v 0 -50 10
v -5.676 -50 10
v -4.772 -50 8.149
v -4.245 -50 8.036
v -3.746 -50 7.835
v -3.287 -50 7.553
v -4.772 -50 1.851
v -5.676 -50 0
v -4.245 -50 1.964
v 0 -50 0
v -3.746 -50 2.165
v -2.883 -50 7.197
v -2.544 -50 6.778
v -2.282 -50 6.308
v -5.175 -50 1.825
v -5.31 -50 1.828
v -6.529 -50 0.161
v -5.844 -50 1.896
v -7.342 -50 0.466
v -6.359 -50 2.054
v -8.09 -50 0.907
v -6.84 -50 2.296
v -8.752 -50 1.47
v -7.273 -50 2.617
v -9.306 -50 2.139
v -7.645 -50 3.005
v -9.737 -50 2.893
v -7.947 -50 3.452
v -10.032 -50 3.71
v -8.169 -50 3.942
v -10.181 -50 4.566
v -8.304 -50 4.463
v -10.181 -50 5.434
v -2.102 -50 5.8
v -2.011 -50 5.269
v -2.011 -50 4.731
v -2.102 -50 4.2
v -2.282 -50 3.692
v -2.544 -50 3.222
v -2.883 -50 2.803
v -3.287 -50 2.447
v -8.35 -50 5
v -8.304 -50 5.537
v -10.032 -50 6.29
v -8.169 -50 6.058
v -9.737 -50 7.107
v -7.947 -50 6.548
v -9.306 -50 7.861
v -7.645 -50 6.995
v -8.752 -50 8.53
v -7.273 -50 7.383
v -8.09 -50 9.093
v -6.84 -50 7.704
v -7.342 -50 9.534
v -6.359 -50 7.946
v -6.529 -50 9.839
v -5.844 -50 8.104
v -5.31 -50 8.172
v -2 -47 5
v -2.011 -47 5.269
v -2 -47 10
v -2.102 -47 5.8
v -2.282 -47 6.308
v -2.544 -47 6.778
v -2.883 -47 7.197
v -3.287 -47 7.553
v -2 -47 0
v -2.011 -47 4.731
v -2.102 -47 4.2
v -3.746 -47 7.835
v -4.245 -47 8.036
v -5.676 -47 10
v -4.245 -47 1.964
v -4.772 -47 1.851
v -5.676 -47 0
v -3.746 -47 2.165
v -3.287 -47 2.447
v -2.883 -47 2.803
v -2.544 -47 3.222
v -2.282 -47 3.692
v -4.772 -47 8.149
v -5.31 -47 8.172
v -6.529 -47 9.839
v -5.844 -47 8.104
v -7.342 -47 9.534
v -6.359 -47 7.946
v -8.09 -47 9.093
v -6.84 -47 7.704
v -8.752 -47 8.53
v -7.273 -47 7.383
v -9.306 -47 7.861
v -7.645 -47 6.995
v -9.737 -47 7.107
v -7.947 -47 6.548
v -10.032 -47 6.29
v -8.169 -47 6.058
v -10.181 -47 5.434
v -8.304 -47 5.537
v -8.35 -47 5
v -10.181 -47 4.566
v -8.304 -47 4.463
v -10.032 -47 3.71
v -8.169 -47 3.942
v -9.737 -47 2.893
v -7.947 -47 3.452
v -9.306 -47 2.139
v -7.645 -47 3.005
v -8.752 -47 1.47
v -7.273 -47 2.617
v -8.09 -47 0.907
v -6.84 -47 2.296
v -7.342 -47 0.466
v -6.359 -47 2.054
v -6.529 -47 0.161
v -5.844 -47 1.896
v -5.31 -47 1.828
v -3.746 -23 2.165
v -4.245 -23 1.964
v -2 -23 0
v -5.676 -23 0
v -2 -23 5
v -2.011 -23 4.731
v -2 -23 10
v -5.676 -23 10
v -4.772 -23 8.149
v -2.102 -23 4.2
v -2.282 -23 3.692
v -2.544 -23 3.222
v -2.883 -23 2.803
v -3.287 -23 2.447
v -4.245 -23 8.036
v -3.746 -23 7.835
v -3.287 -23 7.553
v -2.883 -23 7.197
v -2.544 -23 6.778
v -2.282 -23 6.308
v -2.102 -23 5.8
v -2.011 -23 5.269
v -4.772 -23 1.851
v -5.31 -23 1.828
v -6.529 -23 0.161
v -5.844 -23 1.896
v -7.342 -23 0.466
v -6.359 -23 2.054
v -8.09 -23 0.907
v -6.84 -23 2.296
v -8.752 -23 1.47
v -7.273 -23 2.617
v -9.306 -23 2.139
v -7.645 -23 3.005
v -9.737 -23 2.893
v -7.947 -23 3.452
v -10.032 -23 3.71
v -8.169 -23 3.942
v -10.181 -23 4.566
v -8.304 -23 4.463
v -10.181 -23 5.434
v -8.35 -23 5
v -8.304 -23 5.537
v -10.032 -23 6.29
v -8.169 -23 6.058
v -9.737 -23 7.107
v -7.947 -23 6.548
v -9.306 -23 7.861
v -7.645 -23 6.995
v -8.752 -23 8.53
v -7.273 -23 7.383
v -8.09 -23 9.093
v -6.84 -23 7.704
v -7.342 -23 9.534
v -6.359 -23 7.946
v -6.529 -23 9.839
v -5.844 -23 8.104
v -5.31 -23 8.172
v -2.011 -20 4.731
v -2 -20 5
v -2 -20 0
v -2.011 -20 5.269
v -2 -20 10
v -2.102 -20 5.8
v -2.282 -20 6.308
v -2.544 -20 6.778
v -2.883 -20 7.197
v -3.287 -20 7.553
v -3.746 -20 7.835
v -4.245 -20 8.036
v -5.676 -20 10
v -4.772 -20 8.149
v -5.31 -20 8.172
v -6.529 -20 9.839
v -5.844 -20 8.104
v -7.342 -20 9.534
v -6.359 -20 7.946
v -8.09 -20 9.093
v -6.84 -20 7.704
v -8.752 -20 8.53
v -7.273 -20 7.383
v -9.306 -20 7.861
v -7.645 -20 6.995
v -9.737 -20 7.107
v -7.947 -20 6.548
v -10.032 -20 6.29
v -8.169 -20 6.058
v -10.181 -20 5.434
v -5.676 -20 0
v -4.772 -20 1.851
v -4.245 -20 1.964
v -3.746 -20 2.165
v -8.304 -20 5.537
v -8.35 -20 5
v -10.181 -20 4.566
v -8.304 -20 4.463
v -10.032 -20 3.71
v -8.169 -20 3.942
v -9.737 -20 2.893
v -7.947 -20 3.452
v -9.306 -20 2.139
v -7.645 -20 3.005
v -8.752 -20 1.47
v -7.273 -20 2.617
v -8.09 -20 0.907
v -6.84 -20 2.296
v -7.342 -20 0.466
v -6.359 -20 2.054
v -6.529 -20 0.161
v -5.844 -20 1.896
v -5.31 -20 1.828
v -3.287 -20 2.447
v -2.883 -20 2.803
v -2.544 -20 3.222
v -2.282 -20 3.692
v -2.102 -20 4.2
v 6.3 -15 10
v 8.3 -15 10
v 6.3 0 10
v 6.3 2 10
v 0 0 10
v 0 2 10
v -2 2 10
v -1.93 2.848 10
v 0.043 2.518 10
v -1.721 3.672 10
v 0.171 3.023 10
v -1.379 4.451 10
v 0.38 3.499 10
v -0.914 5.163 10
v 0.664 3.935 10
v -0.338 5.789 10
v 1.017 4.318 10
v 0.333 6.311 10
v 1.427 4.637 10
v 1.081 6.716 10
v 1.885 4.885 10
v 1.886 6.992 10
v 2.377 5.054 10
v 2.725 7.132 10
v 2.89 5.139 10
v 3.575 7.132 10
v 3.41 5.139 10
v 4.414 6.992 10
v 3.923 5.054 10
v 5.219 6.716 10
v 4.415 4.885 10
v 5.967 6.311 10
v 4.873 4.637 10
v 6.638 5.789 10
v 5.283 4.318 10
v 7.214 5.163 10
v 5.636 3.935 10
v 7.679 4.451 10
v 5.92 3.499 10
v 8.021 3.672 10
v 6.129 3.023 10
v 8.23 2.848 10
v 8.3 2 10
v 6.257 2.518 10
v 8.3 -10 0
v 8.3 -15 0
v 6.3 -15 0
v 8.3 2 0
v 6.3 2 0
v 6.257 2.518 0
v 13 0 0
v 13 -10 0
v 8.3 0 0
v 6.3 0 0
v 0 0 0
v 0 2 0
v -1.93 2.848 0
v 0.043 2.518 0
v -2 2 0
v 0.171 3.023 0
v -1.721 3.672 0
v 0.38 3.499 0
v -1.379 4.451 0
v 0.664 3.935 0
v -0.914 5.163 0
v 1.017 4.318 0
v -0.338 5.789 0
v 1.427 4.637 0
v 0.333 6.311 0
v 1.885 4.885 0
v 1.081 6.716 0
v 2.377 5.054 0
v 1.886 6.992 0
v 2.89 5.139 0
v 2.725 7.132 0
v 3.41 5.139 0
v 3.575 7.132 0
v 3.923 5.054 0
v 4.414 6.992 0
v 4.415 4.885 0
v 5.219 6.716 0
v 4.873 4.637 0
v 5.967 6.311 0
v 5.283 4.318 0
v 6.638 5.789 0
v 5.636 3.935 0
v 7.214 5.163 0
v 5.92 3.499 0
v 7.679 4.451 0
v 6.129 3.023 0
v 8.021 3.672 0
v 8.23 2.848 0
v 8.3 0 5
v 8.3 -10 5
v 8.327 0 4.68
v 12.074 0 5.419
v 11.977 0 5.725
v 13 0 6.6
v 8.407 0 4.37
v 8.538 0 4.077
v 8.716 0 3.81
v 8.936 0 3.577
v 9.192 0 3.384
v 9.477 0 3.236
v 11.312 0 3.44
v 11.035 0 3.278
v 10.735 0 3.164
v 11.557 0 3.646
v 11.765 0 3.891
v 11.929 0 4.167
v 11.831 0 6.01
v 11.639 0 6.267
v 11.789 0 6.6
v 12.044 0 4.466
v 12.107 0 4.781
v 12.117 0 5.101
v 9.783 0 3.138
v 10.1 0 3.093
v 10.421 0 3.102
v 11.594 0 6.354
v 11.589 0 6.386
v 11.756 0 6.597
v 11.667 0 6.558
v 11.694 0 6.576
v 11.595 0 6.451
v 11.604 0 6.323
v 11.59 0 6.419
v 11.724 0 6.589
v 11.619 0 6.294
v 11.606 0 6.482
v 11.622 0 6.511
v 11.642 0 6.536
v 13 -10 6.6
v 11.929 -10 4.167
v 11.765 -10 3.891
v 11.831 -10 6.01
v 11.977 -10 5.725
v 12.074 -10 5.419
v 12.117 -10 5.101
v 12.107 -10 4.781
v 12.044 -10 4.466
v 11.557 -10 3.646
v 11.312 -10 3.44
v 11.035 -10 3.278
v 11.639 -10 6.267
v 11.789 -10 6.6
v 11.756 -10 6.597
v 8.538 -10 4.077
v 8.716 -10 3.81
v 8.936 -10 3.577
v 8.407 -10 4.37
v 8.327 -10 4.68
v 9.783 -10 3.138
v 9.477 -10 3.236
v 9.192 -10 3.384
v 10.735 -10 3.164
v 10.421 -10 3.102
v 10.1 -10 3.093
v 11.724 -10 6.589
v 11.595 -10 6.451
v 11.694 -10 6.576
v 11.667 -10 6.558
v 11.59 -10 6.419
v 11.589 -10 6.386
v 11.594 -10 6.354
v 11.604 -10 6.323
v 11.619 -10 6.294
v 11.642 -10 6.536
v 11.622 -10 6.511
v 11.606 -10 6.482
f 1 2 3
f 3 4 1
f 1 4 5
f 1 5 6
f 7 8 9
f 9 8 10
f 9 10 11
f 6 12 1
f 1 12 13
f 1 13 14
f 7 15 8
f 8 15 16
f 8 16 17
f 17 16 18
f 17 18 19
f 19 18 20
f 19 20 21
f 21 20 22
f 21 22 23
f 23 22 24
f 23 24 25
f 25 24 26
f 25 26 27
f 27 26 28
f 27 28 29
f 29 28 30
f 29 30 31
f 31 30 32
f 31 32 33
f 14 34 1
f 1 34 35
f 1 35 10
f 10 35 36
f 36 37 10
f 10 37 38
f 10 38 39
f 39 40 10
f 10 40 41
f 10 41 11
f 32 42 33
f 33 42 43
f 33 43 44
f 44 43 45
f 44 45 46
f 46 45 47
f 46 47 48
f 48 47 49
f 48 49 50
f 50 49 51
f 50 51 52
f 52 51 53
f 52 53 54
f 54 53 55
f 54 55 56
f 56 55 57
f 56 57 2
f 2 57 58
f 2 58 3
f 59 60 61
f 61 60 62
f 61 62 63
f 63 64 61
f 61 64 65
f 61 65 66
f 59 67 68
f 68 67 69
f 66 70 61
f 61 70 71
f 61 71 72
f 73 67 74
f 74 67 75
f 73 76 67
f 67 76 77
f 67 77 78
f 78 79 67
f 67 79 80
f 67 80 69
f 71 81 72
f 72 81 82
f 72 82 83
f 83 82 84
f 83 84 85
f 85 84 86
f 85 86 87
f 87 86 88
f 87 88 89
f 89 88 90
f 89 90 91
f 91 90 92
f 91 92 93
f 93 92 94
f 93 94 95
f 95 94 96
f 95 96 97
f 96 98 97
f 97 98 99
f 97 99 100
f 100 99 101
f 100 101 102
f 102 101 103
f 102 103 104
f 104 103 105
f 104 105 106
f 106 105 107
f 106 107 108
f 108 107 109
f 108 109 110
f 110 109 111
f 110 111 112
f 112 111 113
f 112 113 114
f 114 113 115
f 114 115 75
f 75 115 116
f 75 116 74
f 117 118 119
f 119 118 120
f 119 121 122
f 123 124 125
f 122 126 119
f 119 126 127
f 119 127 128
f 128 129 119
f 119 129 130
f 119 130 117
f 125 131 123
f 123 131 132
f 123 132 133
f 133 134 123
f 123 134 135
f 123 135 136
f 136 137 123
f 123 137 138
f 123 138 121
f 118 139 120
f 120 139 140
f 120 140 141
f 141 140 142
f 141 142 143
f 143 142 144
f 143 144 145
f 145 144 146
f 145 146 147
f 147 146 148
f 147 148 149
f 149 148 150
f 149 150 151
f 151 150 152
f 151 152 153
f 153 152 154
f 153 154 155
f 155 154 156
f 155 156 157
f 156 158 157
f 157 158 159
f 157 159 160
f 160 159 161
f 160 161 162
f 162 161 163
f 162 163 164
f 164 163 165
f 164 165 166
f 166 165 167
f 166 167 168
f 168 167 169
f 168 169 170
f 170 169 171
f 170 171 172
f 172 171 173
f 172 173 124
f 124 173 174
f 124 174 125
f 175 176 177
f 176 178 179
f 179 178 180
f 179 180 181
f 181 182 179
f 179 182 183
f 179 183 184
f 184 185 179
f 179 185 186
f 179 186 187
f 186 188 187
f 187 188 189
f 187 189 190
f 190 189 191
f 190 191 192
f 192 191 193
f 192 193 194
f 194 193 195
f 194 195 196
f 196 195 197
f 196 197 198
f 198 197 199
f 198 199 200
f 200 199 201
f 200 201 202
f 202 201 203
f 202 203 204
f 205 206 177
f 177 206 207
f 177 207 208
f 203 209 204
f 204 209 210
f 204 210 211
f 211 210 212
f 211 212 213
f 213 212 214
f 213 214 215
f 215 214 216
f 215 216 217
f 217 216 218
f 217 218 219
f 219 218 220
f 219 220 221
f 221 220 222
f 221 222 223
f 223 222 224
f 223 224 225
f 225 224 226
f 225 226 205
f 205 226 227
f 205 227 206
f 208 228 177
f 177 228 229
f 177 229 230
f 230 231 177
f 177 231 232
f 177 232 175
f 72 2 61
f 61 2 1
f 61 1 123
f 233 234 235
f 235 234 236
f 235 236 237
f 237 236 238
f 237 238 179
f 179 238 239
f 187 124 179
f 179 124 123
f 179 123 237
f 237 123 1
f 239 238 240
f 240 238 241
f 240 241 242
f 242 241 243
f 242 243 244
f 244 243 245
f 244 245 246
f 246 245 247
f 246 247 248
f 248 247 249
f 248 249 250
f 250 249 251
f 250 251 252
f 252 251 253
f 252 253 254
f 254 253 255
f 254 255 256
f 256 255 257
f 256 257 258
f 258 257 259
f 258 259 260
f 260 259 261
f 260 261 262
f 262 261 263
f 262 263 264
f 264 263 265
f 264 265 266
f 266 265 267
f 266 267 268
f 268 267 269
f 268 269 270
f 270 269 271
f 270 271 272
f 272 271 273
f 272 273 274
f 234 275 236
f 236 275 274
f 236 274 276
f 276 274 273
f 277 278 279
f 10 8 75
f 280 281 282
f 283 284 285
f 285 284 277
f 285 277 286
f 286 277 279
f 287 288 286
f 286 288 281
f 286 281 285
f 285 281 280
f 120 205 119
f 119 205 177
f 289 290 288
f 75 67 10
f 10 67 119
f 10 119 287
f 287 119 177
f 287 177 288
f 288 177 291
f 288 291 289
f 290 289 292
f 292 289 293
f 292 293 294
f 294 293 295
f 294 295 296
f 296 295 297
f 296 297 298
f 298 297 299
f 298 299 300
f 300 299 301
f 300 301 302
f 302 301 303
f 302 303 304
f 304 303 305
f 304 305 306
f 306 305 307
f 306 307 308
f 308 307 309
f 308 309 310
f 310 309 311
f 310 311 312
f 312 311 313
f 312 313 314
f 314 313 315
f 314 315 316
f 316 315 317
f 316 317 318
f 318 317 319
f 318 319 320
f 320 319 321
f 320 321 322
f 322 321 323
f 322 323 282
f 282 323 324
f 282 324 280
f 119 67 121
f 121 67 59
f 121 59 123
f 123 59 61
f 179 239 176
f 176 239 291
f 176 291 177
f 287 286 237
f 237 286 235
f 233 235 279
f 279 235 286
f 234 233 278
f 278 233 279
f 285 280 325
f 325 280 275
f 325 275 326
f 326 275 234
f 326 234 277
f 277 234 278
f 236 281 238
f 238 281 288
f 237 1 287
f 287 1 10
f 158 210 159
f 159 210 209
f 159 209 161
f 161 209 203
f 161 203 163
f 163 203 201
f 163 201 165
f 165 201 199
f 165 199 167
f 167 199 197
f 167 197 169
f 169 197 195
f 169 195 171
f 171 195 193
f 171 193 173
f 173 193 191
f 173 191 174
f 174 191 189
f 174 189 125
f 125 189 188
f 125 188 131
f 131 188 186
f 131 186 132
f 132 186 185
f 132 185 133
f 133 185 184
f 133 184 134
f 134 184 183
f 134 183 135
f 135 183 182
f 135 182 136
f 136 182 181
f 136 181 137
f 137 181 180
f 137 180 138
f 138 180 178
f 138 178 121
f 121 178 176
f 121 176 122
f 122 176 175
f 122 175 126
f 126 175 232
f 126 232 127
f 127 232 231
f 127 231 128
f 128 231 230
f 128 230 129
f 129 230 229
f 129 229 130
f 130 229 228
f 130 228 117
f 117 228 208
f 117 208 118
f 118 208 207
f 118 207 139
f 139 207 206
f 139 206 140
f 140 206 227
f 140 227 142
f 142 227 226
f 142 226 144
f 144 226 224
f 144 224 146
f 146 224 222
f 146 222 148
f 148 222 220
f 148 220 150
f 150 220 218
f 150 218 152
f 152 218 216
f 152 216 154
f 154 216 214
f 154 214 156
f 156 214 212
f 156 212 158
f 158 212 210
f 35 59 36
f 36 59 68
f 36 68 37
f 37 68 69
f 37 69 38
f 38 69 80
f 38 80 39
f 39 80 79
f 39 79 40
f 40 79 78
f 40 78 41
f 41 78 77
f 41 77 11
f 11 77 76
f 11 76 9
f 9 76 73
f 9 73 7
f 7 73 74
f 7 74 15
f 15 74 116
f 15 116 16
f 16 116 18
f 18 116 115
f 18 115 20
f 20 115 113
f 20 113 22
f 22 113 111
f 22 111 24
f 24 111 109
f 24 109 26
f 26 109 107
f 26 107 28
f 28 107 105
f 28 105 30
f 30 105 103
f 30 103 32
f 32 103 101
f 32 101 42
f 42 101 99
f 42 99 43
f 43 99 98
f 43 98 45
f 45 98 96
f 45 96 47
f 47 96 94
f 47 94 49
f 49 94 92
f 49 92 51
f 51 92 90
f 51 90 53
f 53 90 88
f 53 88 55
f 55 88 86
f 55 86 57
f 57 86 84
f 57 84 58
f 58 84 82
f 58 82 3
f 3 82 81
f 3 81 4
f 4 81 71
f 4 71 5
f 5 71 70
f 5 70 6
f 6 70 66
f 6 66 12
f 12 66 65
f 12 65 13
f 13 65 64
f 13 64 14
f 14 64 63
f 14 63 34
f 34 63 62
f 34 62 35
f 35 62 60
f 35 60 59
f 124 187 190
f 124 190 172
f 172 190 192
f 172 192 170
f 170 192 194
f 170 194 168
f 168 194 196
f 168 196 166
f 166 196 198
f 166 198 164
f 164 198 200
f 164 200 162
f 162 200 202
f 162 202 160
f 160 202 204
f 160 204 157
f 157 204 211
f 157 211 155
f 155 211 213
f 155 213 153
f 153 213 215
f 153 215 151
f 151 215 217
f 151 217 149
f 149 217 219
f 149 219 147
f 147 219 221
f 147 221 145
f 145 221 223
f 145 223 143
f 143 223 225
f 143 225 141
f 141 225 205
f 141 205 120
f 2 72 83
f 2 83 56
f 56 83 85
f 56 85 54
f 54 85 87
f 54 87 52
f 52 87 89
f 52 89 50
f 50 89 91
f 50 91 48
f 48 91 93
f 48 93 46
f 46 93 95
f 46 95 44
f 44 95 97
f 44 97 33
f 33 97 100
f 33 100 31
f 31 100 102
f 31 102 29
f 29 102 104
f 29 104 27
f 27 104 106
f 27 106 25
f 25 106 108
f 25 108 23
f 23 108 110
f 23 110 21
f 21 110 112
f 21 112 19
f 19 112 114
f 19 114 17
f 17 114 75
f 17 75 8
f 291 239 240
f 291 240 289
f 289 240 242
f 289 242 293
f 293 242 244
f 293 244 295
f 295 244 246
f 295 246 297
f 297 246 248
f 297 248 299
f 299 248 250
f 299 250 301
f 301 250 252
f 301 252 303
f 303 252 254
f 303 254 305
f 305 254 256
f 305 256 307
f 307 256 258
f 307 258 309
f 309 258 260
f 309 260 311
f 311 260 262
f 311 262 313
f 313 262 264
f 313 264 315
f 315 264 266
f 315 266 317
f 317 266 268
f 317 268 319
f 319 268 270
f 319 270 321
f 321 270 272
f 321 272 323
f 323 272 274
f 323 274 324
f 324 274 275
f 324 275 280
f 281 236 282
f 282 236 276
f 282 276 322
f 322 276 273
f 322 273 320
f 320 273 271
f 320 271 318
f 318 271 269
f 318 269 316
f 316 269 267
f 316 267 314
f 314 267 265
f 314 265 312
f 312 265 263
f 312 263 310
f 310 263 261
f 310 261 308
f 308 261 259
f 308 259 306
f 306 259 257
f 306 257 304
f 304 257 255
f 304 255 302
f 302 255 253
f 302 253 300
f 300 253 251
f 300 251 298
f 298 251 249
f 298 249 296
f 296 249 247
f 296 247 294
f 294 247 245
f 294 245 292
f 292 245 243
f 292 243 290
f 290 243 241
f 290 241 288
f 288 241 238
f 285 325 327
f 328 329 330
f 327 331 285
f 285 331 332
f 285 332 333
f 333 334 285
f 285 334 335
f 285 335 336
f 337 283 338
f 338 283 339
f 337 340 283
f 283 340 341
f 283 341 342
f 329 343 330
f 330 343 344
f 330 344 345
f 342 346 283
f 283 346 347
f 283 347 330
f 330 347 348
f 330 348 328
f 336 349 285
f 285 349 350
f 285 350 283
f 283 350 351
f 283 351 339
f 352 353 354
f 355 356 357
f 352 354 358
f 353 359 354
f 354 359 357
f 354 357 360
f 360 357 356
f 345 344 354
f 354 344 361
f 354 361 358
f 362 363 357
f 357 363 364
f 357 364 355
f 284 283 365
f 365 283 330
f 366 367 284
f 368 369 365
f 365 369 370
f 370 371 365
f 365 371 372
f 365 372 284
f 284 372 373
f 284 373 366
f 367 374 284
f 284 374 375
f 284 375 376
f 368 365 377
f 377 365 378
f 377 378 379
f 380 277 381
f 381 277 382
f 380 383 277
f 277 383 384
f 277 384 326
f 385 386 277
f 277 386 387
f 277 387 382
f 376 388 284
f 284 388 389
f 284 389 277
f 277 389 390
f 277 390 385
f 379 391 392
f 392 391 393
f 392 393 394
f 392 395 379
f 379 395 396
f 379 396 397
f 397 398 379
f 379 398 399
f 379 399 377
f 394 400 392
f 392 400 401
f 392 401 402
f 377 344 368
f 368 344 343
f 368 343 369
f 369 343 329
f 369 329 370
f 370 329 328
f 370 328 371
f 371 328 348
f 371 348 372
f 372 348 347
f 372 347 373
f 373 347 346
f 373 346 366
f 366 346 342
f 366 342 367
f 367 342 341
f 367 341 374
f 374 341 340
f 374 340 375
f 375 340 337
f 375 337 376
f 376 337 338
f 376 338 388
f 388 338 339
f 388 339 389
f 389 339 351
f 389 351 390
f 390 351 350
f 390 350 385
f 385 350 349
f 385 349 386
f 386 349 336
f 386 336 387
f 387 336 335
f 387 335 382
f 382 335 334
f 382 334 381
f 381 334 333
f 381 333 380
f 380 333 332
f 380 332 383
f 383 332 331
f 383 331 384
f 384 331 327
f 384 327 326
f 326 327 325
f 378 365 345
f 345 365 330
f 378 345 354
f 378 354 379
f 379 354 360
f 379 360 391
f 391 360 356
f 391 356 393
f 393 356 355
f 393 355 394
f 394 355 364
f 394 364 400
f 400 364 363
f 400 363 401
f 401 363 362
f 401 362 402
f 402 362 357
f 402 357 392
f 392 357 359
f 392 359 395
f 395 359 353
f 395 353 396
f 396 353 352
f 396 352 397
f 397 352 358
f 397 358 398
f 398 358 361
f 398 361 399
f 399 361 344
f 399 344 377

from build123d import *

# Parameters (mm, degrees)
SKETCH1_W           = 2
SKETCH1_H           = 50
SKETCH1_H_2         = 15
BOSS_EXTRUDE1_DEPTH = 10
SKETCH2_W           = 8.2
SKETCH2_H           = 3
BOSS_EXTRUDE2_DEPTH = 10
SKETCH3_R           = 3.175
CUT_EXTRUDE1_DEPTH  = 30
CUT_EXTRUDE2_DEPTH  = 30
BOSS_EXTRUDE3_DEPTH = 10
SKETCH6_W           = 4.7
SKETCH6_H           = 10
BOSS_EXTRUDE4_DEPTH = 10
SKETCH7_R           = 1.91
CUT_EXTRUDE3_DEPTH  = 10
CUT_EXTRUDE4_DEPTH  = 10
FILLET1_R           = 0.2


with BuildPart() as part:
    # Sketch1 → Boss-Extrude1 (new body)
    with BuildSketch(Plane.XY):
        with Locations((-1, -25)):
            Rectangle(SKETCH1_W, SKETCH1_H)
        Polygon((-2, 0), (0, 0), (6.3, 0), (8.3, 0), (8.3, 2), (-2, 2), align=None)
        with Locations((7.3, -7.5)):
            Rectangle(SKETCH1_W, SKETCH1_H_2)
    extrude(amount=BOSS_EXTRUDE1_DEPTH)

    # Sketch2 → Boss-Extrude2 (add)
    with BuildSketch(Plane.XY.offset(10)):
        with Locations((-6.1, -48.5)):
            Rectangle(SKETCH2_W, SKETCH2_H)
        with Locations((-6.1, -21.5)):
            Rectangle(SKETCH2_W, SKETCH2_H)
    extrude(amount=-BOSS_EXTRUDE2_DEPTH)

    # Sketch3 → Cut-Extrude1 (cut)
    with BuildSketch(Plane(origin=(0, -20, 0), x_dir=(1, 0, 0), z_dir=(0, 1, 0))):
        with Locations((-5.175, -5)):
            Circle(SKETCH3_R)
    extrude(amount=-CUT_EXTRUDE1_DEPTH, mode=Mode.SUBTRACT)

    # Sketch4 → Cut-Extrude2 (cut)
    with BuildSketch(Plane(origin=(0, -20, 0), x_dir=(1, 0, 0), z_dir=(0, 1, 0))):
        with BuildLine():
            Line((-5.67562461, 0), (-10.2, 0))
            Line((-10.2, 0), (-10.2, -5))
            ThreePointArc((-10.2, -5), (-8.901007492, -1.62842868), (-5.67562461, 0))
        make_face()
        with BuildLine():
            ThreePointArc((-5.67562461, -10), (-8.901007492, -8.37157132), (-10.2, -5))
            Line((-10.2, -5), (-10.2, -10))
            Line((-10.2, -10), (-5.67562461, -10))
        make_face()
    extrude(amount=-CUT_EXTRUDE2_DEPTH, mode=Mode.SUBTRACT)

    # Sketch5 → Boss-Extrude3 (add)
    with BuildSketch(Plane.XY.offset(10)):
        with BuildLine():
            Line((-2, 2), (0, 2))
            ThreePointArc((0, 2), (3.15, 5.15), (6.3, 2))
            Line((6.3, 2), (8.3, 2))
            ThreePointArc((8.3, 2), (3.15, 7.15), (-2, 2))
        make_face()
    extrude(amount=-BOSS_EXTRUDE3_DEPTH)

    # Sketch6 → Boss-Extrude4 (add)
    with BuildSketch(Plane.XY.offset(10)):
        with Locations((10.65, -5)):
            Rectangle(SKETCH6_W, SKETCH6_H)
    extrude(amount=-BOSS_EXTRUDE4_DEPTH)

    # Sketch7 → Cut-Extrude3 (cut)
    with BuildSketch(Plane(origin=(0, 0, 0), x_dir=(1, 0, 0), z_dir=(0, 1, 0))):
        with Locations((10.21, -5)):
            Circle(SKETCH7_R)
    extrude(amount=-CUT_EXTRUDE3_DEPTH, mode=Mode.SUBTRACT)

    # Sketch8 → Cut-Extrude4 (cut)
    with BuildSketch(Plane(origin=(0, 0, 0), x_dir=(1, 0, 0), z_dir=(0, 1, 0))):
        with BuildLine():
            Line((13, -6.6), (13, -10))
            Line((13, -10), (8.3, -10))
            Line((8.3, -10), (8.3, -5))
            ThreePointArc((8.3, -5), (9.30012633, -6.679354014), (11.253120319, -6.6))
            Line((11.253120319, -6.6), (13, -6.6))
        make_face()
    extrude(amount=-CUT_EXTRUDE4_DEPTH, mode=Mode.SUBTRACT)

    # Fillet1
    fillet1_edges = [part.edges().sort_by_distance(p)[0] for p in [
        (11.253120319, -5, 6.6),
    ]]
    fillet(fillet1_edges, radius=FILLET1_R)


solid = part.part
